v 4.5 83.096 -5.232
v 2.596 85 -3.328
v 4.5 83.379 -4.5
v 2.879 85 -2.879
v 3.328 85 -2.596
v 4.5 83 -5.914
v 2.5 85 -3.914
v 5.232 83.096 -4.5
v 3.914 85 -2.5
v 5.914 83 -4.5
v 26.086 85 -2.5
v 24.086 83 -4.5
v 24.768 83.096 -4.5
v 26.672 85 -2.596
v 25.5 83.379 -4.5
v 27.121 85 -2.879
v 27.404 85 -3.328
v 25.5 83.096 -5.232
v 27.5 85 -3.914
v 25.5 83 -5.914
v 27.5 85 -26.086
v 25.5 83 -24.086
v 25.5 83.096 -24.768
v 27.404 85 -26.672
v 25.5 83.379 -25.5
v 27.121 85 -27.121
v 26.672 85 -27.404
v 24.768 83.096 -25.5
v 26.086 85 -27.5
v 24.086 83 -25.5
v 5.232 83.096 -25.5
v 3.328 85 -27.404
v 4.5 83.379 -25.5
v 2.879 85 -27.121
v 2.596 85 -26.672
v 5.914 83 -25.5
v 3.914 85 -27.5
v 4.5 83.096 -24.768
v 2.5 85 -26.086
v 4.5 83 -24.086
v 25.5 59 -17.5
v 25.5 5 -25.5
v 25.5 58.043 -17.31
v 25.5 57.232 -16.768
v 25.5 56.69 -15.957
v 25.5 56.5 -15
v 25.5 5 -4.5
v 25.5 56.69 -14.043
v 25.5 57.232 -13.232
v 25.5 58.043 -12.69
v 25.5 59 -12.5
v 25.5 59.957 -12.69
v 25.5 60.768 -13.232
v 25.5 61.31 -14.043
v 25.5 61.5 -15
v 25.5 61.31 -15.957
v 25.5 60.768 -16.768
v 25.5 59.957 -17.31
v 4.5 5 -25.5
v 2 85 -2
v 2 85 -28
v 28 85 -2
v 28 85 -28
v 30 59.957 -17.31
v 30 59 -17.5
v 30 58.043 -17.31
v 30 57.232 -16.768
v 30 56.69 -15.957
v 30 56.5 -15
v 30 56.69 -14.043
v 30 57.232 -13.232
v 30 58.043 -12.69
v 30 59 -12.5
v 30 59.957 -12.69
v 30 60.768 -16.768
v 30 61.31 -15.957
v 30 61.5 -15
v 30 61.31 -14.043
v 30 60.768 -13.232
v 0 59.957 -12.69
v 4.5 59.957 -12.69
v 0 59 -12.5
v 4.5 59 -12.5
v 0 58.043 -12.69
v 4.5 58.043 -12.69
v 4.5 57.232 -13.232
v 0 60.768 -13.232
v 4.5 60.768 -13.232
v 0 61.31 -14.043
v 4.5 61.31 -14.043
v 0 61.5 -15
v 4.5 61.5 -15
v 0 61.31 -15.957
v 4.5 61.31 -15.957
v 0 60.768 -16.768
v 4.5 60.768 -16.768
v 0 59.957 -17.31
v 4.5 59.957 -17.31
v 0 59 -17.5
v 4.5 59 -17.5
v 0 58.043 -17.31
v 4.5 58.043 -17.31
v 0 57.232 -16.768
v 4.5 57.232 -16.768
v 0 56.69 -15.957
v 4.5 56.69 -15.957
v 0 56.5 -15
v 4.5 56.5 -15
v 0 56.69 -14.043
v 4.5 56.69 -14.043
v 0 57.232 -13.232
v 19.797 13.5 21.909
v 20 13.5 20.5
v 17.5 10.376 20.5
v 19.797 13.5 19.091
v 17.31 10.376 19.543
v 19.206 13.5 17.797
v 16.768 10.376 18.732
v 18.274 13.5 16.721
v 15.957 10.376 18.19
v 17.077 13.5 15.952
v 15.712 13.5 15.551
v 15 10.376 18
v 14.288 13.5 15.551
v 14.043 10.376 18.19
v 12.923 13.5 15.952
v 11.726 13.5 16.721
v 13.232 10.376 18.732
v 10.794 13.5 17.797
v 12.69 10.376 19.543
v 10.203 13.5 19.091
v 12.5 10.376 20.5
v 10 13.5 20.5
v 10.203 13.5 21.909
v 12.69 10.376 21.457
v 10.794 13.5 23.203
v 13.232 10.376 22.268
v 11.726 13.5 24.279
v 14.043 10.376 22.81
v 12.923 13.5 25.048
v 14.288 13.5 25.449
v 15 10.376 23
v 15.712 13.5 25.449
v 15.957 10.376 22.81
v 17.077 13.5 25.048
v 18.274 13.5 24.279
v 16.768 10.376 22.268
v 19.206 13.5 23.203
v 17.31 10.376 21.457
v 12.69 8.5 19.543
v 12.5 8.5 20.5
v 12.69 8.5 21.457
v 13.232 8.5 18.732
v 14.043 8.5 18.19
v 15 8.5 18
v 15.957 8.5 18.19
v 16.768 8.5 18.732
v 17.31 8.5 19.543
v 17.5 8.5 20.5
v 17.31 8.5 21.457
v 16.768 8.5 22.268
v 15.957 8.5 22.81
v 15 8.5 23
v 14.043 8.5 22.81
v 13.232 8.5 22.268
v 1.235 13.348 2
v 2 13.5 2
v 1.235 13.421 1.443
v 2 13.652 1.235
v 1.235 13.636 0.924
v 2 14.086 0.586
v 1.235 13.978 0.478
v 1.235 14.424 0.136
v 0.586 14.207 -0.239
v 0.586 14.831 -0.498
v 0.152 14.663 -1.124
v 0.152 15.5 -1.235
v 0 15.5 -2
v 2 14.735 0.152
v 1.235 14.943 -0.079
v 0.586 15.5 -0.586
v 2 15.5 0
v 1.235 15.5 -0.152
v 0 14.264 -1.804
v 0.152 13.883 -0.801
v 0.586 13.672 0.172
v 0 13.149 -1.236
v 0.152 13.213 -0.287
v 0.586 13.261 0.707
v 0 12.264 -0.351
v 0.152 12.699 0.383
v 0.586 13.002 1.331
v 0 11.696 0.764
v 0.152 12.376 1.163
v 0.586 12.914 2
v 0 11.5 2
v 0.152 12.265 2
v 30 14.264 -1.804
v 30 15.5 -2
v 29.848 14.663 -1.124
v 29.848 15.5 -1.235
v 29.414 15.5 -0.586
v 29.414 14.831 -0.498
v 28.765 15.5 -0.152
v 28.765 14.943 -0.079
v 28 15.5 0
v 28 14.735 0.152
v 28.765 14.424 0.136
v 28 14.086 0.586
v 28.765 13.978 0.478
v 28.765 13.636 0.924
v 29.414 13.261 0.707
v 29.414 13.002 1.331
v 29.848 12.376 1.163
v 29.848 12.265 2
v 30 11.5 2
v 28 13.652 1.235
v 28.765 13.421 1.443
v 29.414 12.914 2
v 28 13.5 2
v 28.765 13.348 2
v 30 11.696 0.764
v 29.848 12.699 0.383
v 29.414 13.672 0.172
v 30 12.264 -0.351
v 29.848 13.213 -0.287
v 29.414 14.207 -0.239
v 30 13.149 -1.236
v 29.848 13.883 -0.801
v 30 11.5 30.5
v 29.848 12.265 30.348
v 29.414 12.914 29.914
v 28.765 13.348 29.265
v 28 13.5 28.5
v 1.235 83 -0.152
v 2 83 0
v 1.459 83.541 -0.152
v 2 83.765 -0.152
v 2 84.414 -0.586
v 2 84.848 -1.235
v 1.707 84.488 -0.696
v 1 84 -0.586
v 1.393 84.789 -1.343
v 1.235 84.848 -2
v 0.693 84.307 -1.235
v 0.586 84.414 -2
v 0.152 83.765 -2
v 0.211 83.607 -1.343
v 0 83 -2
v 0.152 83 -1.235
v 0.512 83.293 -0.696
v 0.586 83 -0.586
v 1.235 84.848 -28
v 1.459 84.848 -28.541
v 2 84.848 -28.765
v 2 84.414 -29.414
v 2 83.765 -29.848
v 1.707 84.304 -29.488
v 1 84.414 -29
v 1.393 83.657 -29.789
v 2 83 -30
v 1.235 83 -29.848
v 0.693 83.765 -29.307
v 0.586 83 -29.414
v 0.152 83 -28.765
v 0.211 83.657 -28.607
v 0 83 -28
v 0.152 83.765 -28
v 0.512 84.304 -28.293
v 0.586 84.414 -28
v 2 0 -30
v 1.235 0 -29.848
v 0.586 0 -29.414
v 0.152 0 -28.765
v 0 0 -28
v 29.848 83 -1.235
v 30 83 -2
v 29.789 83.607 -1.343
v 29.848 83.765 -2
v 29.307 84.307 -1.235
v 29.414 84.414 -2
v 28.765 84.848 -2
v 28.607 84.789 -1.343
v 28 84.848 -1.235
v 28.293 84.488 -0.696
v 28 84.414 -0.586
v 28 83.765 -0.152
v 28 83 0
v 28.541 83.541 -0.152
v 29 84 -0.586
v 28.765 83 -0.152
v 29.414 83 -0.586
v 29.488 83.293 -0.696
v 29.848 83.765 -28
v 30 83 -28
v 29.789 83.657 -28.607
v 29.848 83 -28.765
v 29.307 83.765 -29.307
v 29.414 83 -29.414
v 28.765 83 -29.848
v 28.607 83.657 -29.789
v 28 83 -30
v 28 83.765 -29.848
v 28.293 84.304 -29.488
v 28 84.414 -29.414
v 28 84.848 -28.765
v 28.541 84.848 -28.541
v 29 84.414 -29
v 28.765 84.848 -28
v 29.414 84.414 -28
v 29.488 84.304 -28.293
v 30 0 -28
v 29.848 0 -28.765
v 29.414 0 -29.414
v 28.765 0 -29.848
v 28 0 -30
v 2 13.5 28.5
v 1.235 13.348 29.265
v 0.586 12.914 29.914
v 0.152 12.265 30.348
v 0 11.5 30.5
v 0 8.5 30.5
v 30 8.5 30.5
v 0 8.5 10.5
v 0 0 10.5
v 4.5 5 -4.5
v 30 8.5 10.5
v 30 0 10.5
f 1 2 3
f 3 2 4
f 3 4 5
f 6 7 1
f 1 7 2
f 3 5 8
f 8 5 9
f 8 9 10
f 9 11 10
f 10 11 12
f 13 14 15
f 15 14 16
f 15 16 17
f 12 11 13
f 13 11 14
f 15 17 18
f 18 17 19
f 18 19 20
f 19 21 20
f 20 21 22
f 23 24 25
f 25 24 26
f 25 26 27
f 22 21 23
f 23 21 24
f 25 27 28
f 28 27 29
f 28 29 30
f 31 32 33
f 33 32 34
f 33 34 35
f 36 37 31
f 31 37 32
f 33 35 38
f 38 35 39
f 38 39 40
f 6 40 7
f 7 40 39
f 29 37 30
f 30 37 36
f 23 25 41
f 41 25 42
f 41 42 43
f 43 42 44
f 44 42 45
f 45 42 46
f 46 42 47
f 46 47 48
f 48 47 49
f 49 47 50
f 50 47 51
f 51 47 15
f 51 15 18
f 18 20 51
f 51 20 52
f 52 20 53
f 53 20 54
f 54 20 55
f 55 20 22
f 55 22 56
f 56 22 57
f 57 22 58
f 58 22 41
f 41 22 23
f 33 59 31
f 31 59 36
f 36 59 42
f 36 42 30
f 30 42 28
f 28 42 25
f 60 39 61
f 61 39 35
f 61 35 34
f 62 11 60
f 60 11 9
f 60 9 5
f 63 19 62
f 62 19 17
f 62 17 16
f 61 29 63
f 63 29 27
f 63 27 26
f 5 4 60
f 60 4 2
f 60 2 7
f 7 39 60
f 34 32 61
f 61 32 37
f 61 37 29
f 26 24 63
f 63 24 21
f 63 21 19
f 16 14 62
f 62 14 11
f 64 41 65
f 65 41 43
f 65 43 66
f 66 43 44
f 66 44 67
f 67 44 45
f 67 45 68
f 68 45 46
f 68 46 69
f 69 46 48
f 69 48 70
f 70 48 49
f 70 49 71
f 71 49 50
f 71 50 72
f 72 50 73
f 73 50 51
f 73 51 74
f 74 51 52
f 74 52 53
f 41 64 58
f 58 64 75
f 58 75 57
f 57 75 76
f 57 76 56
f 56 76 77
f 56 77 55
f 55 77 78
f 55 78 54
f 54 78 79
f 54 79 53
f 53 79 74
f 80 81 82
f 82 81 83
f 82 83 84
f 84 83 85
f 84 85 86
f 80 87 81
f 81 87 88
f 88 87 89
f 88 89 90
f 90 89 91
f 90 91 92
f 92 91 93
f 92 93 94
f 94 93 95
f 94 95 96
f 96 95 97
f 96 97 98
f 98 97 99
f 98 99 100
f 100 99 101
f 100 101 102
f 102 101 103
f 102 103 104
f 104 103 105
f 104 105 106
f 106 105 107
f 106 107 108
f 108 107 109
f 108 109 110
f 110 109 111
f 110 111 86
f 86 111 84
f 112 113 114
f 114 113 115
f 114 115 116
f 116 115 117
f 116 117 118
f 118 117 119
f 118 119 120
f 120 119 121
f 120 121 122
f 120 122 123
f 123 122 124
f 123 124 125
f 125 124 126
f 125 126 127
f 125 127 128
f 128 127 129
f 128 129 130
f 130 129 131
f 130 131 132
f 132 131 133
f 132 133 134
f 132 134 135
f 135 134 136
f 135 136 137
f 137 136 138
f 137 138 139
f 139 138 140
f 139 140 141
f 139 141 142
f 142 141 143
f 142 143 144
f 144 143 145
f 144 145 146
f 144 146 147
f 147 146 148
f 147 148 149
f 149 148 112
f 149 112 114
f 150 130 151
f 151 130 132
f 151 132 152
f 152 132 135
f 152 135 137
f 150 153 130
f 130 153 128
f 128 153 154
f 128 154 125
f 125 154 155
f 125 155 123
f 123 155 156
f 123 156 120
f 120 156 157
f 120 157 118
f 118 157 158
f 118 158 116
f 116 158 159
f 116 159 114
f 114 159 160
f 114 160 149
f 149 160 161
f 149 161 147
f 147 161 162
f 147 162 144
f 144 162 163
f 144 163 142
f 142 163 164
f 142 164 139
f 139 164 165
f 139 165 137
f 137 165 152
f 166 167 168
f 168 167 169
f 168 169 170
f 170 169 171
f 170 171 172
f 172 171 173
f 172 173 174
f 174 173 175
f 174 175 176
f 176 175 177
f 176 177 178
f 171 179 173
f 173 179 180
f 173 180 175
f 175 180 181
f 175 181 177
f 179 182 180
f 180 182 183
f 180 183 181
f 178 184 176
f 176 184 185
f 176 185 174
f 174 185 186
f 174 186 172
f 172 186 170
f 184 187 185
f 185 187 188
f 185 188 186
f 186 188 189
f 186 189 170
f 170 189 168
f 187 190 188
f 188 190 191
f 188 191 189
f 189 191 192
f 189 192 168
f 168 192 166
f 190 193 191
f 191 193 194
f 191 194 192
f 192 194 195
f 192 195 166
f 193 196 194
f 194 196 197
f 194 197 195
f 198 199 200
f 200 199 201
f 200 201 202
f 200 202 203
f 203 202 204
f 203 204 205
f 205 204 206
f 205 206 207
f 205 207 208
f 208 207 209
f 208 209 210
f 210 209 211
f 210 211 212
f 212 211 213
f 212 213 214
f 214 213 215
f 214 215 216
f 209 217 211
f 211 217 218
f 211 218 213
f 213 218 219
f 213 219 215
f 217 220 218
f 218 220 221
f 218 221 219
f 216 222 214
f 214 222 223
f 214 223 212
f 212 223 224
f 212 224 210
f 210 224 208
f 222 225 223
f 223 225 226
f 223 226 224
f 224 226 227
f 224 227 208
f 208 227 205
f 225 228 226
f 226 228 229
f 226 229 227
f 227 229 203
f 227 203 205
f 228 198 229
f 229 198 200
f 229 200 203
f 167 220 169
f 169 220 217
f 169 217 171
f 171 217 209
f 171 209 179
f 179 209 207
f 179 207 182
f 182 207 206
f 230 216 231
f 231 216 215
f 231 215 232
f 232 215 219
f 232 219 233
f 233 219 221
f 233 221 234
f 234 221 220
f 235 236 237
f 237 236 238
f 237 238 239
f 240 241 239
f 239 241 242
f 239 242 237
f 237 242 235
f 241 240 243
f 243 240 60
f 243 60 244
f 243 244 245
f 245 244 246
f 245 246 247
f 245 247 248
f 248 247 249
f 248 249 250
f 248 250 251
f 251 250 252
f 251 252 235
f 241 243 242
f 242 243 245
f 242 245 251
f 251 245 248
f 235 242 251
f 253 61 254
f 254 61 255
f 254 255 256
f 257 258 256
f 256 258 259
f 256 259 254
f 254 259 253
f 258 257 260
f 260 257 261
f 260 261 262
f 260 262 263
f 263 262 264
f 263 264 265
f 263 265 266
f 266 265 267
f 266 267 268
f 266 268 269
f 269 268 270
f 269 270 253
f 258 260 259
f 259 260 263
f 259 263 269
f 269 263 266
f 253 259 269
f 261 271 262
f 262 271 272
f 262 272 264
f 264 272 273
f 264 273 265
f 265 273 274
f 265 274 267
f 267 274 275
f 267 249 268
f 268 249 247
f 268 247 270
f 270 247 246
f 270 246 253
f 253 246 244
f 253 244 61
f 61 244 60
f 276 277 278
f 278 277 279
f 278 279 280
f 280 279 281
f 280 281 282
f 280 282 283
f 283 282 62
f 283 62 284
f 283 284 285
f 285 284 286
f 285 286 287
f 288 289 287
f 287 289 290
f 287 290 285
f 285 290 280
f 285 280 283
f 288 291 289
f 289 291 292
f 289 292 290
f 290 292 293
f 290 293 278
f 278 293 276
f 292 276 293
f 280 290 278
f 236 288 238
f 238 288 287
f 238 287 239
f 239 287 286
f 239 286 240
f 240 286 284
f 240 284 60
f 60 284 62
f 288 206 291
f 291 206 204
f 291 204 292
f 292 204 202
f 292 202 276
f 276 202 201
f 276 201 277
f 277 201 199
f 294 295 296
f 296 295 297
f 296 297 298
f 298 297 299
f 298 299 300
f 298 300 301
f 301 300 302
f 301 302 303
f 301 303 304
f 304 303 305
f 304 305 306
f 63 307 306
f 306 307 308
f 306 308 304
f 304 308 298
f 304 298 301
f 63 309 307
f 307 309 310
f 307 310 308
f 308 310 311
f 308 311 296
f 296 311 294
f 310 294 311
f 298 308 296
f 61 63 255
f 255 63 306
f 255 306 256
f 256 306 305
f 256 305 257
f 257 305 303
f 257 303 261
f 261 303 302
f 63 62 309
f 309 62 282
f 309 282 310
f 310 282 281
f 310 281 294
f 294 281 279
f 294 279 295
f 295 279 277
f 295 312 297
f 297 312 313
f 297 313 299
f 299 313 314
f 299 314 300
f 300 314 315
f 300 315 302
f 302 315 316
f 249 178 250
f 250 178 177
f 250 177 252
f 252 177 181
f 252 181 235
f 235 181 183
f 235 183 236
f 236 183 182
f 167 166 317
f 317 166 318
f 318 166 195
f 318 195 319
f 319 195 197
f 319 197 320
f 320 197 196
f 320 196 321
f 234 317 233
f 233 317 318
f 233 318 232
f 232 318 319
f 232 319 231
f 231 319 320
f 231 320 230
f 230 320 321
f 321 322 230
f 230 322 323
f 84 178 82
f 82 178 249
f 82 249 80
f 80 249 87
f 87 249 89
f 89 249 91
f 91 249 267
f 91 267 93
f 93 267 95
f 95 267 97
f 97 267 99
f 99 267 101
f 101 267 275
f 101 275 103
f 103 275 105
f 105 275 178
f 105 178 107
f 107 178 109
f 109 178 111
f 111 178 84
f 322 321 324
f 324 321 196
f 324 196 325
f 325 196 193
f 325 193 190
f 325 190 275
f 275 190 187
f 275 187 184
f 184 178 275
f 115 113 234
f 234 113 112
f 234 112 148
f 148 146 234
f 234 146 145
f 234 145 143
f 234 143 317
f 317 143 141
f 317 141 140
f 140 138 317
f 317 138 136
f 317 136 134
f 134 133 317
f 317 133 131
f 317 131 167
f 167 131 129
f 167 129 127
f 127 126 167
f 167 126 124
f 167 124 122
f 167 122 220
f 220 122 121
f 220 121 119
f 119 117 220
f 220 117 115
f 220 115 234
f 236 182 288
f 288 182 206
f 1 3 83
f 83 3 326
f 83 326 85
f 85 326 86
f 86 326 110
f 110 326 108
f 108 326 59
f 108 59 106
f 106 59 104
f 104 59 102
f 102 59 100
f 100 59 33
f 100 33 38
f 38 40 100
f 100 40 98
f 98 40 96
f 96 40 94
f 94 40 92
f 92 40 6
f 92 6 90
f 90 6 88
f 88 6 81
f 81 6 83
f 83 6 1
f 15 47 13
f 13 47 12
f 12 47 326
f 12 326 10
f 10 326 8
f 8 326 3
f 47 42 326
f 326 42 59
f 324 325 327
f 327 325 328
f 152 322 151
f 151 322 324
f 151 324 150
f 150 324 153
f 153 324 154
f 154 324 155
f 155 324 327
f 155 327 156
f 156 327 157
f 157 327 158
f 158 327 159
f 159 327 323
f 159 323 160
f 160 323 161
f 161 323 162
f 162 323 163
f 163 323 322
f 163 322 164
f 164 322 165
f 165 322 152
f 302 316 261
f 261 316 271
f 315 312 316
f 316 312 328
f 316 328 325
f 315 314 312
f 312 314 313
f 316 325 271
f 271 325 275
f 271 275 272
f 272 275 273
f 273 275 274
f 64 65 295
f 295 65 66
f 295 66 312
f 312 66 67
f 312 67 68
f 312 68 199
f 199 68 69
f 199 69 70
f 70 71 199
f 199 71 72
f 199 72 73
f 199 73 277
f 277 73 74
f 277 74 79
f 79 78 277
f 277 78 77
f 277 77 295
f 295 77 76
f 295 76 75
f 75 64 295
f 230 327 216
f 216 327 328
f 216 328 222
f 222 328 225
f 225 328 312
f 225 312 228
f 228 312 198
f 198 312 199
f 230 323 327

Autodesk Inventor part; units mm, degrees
ref_plane "YZ Plane" through (0, 0, 0) normal (1, 0, 0) x (0, 1, 0)
ref_plane "XZ Plane" through (0, 0, 0) normal (0, 1, 0) x (-1, 0, 0)
ref_plane "XY Plane" through (0, 0, 0) normal (0, 0, 1) x (1, 0, 0)
sketch "Sketch1" plane through (0, 0, 0) normal (1, 0, 0) x (0, 1, 0)
  line L0 (0, 0) -> (0, -30)
  line L1 (13.5, 0) -> (30, 0) construction
  line L2 (0, -30) -> (85, -30)
  line L3 (13.5, 0) -> (85, 0)
  line L4 (85, 0) -> (85, -30)
  line L5 (0, 0) -> (0, 10.5)
  line L6 (13.5, 0) -> (14, 0) construction
  line L7 (0, 10.5) -> (8.5, 10.5)
  line L8 (8.5, 10.5) -> (8.5, 30.5)
  line L9 (8.5, 30.5) -> (13.5, 30.5)
  line L10 (13.5, 30.5) -> (13.5, 0)
  point P0 (0, -15)
  dimension "d0" = 30
  dimension "d2" = 85
  dimension "d4" = 10.5
  dimension "d6" = 8.5
  dimension "d7" = 20
  dimension "d8" = 5
  dimension "d47" = 30
extrude "Extrusion1" add sketch "Sketch1" along normal blind 30
sketch "Sketch2" plane through (0, 85, 0) normal (0, 1, 0) x (1, 0, 0)
  line L0 (4.5, 4.5) -> (4.5, 25.5)
  line L1 (4.5, 4.5) -> (25.5, 4.5) construction
  line L2 (4.5, 25.5) -> (25.5, 25.5)
  line L3 (25.5, 25.5) -> (25.5, 4.5)
  line L4 (25.5, 4.5) -> (4.5, 4.5)
  line L5 (30, 30) -> (30, 0) projected
  point P0 (0, 0)
  dimension "d13" = 21
  dimension "d14" = 90
  dimension "d15" = 21
  dimension "d16" = 90
  dimension "d17" = 21
  dimension "d18" = 90
  dimension "d19" = 21
  dimension "d46" = 4.5
  dimension "d48" = 90
  dimension "d49" = 4.5
extrude "Extrusion2" cut sketch "Sketch2" against normal blind 80
fillet "Fillet1" radius 2 12 edges at (30, 85, -15) (15, 85, 0) (15, 85, -30) (0, 85, -15) (30, 49.25, 0) (30, 42.5, -30) (0, 49.25, 0) (0, 42.5, -30) (0, 13.5, 15.25) (15, 13.5, 30.5) (30, 13.5, 15.25) (15, 13.5, 0)
sketch "Sketch4" plane through (2, 13.5, 2) normal (0, 1, 0) x (1, 0, 0)
  line L0 (-2, -28.5) -> (28, -28.5) projected
  point P0 (-2, 2)
  point P1 (13, -18.5)
  point P2 (13, -28.5)
  dimension "d37" = 10
hole "Hole1" at (15, 13.5, 20.5) direction (0, -1, 0) diameter 5 end through all countersink diameter 10 countersink angle 77.33
sketch "Sketch6" plane through (30, 0, 0) normal (1, 0, 0) x (0, 0, -1)
  line L0 (-10.5, 0) -> (28, 0) projected
  point P0 (0, 0)
  point P1 (15, 59)
  point P2 (15, 0)
  dimension "d45" = 59
hole "Hole2" at (30, 59, -15) direction (-1, 0, 0) diameter 5 end through all
chamfer "Chamfer2" distance 2 angle 45 4 edges at (4.5, 85, -15) (15, 85, -25.5) (25.5, 85, -15) (15, 85, -4.5)
fillet "Fillet3" radius 2 4 edges at (3.5, 84, -26.5) (26.5, 84, -26.5) (26.5, 84, -3.5) (3.5, 84, -3.5)
properties part number "flexibler_standfuß_v0.9"
